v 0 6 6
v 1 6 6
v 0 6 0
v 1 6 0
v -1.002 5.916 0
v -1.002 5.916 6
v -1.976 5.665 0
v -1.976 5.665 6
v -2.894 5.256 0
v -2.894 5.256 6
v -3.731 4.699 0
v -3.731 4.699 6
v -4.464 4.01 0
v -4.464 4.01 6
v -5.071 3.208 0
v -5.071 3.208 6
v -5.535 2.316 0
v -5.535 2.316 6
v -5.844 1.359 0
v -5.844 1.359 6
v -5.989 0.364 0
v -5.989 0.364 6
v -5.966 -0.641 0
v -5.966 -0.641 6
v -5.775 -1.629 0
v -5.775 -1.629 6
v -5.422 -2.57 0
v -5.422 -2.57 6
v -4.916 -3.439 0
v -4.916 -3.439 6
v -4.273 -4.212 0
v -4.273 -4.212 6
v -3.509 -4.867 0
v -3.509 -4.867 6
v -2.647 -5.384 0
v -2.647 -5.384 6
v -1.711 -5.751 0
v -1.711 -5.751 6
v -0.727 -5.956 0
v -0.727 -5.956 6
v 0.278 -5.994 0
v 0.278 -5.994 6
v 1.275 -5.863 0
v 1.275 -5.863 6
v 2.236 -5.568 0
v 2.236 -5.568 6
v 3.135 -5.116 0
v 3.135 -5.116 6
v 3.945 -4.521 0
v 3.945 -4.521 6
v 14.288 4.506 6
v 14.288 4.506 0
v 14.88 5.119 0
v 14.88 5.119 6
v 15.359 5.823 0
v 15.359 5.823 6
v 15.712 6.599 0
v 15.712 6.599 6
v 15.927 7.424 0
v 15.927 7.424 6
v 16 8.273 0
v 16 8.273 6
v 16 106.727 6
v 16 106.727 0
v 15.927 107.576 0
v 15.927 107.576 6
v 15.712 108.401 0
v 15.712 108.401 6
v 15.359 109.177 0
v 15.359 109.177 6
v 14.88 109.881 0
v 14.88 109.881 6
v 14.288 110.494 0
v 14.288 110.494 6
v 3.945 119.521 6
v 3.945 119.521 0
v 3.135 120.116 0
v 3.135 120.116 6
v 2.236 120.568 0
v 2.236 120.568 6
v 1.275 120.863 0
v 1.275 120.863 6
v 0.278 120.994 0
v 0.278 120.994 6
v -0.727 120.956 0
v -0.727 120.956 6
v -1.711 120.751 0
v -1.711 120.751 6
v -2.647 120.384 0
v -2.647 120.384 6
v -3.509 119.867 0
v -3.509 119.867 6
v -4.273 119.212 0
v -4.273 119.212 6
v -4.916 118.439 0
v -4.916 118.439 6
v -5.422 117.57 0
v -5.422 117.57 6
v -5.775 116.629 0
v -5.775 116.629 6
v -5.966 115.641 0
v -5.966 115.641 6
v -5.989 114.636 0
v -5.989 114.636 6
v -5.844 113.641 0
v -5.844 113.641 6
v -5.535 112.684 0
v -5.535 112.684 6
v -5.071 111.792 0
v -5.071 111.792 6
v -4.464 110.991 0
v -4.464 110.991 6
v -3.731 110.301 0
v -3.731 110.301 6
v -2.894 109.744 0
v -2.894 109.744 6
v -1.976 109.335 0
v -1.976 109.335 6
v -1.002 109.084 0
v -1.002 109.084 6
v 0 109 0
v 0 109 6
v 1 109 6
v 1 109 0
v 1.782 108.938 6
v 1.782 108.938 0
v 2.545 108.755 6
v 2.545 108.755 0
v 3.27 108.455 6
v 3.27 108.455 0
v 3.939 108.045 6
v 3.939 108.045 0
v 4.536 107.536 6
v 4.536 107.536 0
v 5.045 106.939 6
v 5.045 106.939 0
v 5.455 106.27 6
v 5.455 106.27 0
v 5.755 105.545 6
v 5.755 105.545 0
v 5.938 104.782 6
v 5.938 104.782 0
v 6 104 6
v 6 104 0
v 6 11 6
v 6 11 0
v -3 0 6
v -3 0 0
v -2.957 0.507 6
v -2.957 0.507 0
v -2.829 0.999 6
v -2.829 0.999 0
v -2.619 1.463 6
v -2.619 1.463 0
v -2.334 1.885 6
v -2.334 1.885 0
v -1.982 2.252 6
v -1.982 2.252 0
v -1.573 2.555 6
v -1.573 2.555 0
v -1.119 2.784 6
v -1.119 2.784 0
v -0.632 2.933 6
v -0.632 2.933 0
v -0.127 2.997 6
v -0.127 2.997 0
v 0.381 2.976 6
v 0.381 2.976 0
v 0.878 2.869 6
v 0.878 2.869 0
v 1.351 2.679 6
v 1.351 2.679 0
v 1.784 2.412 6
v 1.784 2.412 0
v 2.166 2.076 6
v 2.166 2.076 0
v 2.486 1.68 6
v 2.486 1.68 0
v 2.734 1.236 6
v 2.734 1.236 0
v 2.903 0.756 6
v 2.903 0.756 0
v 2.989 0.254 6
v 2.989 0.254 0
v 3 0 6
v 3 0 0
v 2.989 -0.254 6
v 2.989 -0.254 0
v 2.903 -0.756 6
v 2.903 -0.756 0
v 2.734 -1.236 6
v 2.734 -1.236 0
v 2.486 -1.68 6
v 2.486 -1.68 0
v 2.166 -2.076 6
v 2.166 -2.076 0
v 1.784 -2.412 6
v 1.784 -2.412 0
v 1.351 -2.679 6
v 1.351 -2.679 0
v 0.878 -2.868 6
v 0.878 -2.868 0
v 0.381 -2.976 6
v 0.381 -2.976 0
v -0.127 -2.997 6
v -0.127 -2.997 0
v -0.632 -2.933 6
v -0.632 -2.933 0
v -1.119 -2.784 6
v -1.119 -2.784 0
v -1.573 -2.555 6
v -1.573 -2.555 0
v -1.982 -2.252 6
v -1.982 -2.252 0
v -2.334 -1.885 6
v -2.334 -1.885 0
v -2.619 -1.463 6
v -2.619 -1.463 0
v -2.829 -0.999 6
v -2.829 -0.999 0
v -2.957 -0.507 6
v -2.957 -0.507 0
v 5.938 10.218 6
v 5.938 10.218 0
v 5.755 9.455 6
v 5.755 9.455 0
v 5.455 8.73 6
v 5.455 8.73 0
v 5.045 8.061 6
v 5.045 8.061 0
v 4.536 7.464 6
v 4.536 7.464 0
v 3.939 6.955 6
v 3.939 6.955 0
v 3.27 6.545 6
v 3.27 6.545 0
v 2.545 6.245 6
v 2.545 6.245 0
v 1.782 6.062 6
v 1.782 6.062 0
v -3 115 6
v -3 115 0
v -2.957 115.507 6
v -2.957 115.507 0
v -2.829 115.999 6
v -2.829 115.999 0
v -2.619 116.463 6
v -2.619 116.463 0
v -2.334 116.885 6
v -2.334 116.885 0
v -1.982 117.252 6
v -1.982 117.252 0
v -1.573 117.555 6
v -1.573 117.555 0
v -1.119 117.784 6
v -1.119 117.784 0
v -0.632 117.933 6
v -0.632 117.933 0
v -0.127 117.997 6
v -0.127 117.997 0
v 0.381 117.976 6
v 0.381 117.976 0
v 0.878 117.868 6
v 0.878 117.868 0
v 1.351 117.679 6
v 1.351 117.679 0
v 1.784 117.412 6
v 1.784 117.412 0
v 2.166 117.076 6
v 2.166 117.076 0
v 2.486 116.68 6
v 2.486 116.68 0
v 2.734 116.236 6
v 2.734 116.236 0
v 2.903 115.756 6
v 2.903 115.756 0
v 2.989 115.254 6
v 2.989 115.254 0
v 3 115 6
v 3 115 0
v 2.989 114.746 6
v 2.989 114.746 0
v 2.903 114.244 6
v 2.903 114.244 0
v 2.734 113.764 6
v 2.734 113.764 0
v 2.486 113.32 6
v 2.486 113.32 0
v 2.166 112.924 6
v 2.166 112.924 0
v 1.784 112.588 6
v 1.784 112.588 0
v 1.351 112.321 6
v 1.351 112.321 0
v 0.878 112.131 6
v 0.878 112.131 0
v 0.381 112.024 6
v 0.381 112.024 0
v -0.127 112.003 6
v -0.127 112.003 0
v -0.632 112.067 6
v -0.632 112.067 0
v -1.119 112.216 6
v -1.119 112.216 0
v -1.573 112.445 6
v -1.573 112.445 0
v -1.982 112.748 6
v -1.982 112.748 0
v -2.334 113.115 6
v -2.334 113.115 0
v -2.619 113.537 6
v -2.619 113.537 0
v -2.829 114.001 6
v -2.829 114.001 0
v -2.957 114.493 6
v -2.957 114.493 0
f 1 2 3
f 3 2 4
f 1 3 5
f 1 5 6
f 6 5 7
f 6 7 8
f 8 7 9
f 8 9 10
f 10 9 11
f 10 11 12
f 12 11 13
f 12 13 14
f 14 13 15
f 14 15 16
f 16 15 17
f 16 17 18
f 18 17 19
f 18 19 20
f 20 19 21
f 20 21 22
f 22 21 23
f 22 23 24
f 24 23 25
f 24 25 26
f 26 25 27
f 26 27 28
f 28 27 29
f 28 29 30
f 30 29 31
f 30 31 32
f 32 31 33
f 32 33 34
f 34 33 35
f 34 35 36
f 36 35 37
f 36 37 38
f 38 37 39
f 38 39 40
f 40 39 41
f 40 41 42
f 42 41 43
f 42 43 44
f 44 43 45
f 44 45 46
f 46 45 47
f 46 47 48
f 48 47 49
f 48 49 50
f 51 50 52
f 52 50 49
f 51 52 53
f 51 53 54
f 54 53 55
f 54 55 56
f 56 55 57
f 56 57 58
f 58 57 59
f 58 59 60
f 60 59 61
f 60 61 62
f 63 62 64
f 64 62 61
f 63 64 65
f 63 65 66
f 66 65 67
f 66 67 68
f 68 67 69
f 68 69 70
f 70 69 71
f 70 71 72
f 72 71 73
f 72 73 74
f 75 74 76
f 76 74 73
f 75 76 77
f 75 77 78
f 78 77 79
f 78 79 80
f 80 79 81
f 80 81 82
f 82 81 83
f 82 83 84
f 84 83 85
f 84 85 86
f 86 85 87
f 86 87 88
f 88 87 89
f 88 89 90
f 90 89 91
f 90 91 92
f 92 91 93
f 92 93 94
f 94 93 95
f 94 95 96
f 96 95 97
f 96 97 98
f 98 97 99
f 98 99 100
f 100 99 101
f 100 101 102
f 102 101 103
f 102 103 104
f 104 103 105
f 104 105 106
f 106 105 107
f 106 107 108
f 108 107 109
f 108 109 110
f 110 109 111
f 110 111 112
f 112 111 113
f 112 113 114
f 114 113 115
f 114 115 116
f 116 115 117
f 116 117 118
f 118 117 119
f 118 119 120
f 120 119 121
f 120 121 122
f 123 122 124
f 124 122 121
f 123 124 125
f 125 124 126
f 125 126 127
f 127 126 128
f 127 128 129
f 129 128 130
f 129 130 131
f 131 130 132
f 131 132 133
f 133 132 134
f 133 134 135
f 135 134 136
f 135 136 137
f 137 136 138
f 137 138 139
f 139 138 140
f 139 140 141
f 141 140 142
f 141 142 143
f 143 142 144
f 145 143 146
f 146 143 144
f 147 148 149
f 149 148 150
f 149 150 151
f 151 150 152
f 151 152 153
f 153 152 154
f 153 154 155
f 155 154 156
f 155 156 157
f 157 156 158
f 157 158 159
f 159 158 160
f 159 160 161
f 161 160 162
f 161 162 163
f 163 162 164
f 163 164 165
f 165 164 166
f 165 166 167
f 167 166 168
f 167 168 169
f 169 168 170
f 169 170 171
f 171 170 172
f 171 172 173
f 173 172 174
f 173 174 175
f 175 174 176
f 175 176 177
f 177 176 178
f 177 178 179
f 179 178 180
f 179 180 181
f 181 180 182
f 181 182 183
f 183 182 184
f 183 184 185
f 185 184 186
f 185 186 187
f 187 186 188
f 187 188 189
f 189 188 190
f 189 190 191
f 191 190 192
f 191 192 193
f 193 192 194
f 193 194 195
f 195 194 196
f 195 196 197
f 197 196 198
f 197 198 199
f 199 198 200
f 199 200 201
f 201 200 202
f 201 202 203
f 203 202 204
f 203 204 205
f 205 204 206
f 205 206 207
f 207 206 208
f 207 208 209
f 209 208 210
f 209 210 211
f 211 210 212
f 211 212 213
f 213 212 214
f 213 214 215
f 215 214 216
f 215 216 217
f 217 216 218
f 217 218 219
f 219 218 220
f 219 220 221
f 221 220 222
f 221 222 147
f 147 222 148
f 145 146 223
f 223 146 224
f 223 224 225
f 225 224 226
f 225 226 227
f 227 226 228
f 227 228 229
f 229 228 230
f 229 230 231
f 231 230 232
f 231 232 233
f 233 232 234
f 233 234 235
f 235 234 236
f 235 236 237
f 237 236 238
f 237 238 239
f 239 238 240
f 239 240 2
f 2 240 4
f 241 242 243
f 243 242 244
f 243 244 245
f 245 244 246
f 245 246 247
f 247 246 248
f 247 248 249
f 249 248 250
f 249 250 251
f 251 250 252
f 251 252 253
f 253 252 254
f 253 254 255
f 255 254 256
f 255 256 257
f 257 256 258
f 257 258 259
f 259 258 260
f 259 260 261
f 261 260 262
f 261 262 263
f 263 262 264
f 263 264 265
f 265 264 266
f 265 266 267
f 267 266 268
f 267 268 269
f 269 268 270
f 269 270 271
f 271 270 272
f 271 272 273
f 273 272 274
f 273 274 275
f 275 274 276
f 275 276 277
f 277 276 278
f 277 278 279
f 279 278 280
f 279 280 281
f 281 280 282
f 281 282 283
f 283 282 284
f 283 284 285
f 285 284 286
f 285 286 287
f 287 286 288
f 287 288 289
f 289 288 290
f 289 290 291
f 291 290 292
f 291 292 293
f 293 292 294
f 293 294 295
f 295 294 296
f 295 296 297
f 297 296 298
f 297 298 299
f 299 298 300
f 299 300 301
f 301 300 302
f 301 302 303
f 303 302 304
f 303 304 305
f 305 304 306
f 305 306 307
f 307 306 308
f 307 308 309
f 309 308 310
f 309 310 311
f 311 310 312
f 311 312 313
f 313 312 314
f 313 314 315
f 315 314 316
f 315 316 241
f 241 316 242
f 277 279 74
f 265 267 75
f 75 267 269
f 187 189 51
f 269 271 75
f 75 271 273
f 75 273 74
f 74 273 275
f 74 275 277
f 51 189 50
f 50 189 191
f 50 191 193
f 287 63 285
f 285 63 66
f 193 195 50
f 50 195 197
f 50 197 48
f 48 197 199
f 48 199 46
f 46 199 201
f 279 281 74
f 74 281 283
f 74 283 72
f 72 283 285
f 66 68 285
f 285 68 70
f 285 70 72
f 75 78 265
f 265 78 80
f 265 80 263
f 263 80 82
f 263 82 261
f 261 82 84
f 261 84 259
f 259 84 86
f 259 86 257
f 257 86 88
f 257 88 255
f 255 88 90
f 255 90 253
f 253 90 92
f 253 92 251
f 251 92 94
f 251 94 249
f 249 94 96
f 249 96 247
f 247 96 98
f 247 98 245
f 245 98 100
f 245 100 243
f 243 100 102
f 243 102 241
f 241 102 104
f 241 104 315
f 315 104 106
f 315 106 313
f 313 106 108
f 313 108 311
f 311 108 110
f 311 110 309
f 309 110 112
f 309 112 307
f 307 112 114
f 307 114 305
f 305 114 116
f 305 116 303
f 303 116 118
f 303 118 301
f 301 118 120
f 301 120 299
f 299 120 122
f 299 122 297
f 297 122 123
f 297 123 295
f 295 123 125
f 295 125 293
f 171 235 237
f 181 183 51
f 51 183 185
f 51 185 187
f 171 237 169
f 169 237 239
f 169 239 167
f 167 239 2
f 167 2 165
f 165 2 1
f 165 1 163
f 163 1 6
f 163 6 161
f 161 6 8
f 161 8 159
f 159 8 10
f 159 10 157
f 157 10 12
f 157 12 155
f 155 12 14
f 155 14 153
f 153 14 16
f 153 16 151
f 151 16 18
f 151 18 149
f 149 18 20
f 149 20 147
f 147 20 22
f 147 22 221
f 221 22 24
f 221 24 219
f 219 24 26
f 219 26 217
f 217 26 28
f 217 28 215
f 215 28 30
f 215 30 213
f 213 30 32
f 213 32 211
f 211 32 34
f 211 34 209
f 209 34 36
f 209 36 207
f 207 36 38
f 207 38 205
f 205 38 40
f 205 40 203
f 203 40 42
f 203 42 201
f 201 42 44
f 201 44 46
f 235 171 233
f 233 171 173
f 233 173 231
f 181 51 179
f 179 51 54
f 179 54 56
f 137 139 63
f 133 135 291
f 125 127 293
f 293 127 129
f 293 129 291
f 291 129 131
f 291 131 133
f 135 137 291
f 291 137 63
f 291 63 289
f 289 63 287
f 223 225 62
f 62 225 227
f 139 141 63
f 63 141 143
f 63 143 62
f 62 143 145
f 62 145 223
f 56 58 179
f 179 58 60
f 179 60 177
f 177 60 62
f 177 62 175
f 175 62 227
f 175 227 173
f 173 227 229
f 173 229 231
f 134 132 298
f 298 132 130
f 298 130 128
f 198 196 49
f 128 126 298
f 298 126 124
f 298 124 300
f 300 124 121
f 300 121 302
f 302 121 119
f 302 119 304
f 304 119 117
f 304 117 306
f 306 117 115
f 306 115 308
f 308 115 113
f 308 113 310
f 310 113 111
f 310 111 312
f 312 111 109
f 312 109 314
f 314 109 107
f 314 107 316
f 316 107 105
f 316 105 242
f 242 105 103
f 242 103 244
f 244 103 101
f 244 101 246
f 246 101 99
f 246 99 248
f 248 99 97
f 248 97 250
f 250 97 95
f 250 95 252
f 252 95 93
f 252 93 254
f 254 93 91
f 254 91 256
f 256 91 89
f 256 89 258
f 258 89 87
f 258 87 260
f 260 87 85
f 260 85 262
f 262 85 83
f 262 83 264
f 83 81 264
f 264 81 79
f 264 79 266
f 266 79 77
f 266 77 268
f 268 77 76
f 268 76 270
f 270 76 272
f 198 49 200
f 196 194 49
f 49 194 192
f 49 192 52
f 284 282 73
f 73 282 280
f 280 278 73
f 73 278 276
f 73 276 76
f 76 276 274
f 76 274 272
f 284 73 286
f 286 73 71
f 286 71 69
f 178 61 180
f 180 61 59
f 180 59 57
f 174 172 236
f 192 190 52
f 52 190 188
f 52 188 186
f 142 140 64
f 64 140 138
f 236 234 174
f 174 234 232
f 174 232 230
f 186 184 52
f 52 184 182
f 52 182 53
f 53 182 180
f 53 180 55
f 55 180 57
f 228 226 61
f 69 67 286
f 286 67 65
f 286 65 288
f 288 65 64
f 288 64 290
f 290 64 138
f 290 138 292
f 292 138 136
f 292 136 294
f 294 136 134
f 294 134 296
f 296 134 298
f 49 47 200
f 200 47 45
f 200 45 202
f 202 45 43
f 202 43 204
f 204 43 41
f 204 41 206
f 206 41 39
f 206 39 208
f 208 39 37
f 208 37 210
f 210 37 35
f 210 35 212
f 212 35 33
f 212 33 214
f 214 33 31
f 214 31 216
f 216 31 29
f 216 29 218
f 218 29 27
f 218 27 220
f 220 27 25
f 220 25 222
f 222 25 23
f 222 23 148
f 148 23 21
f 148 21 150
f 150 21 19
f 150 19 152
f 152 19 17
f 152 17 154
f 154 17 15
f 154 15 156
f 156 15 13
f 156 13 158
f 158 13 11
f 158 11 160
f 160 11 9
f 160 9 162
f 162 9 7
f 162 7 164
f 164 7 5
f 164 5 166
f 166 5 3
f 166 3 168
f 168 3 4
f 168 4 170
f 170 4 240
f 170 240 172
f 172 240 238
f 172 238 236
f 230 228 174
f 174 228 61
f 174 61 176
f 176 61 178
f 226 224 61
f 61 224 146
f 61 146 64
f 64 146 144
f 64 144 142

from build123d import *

# Parameters (mm, degrees)
CROQUIS1_R              = 3
CROQUIS1_R_2            = 6
SALIENTE_EXTRUIR1_DEPTH = 6


with BuildPart() as part:
    # Croquis1 → Saliente-Extruir1 (new body)
    with BuildSketch(Plane.XY):
        with BuildLine():
            ThreePointArc((0, -6), (2.10674065, -5.617975065), (3.945205479, -4.520547945))
            ThreePointArc((3.945205479, -4.520547945), (5.462198865, -2.482817666), (6, 0))
            ThreePointArc((6, 0), (4.242640687, 4.242640687), (0, 6))
            ThreePointArc((0, 6), (-4.242640687, 4.242640687), (-6, 0))
            ThreePointArc((-6, 0), (-4.242640687, -4.242640687), (0, -6))
        make_face()
        Circle(CROQUIS1_R, mode=Mode.SUBTRACT)
        with BuildLine():
            ThreePointArc((14.287671233, 4.505603985), (15.551832387, 6.203712551), (16, 8.272727273))
            Line((16, 8.272727273), (16, 106.727272727))
            ThreePointArc((16, 106.727272727), (15.551832387, 108.796287449), (14.287671233, 110.494396015))
            Line((14.287671233, 110.494396015), (3.945205479, 119.520547945))
            ThreePointArc((3.945205479, 119.520547945), (5.462198865, 117.482817666), (6, 115))
            ThreePointArc((6, 115), (4.242640687, 110.757359313), (0, 109))
            Line((0, 109), (1, 109))
            ThreePointArc((1, 109), (4.535533906, 107.535533906), (6, 104))
            Line((6, 104), (6, 11))
            ThreePointArc((6, 11), (4.535533906, 7.464466094), (1, 6))
            Line((1, 6), (0, 6))
            ThreePointArc((0, 6), (4.242640687, 4.242640687), (6, 0))
            ThreePointArc((6, 0), (5.462198865, -2.482817666), (3.945205479, -4.520547945))
            Line((3.945205479, -4.520547945), (14.287671233, 4.505603985))
        make_face()
        with Locations((0, 115)):
            Circle(CROQUIS1_R_2)
        with Locations((0, 115)):
            Circle(CROQUIS1_R, mode=Mode.SUBTRACT)
    extrude(amount=SALIENTE_EXTRUIR1_DEPTH)


solid = part.part
